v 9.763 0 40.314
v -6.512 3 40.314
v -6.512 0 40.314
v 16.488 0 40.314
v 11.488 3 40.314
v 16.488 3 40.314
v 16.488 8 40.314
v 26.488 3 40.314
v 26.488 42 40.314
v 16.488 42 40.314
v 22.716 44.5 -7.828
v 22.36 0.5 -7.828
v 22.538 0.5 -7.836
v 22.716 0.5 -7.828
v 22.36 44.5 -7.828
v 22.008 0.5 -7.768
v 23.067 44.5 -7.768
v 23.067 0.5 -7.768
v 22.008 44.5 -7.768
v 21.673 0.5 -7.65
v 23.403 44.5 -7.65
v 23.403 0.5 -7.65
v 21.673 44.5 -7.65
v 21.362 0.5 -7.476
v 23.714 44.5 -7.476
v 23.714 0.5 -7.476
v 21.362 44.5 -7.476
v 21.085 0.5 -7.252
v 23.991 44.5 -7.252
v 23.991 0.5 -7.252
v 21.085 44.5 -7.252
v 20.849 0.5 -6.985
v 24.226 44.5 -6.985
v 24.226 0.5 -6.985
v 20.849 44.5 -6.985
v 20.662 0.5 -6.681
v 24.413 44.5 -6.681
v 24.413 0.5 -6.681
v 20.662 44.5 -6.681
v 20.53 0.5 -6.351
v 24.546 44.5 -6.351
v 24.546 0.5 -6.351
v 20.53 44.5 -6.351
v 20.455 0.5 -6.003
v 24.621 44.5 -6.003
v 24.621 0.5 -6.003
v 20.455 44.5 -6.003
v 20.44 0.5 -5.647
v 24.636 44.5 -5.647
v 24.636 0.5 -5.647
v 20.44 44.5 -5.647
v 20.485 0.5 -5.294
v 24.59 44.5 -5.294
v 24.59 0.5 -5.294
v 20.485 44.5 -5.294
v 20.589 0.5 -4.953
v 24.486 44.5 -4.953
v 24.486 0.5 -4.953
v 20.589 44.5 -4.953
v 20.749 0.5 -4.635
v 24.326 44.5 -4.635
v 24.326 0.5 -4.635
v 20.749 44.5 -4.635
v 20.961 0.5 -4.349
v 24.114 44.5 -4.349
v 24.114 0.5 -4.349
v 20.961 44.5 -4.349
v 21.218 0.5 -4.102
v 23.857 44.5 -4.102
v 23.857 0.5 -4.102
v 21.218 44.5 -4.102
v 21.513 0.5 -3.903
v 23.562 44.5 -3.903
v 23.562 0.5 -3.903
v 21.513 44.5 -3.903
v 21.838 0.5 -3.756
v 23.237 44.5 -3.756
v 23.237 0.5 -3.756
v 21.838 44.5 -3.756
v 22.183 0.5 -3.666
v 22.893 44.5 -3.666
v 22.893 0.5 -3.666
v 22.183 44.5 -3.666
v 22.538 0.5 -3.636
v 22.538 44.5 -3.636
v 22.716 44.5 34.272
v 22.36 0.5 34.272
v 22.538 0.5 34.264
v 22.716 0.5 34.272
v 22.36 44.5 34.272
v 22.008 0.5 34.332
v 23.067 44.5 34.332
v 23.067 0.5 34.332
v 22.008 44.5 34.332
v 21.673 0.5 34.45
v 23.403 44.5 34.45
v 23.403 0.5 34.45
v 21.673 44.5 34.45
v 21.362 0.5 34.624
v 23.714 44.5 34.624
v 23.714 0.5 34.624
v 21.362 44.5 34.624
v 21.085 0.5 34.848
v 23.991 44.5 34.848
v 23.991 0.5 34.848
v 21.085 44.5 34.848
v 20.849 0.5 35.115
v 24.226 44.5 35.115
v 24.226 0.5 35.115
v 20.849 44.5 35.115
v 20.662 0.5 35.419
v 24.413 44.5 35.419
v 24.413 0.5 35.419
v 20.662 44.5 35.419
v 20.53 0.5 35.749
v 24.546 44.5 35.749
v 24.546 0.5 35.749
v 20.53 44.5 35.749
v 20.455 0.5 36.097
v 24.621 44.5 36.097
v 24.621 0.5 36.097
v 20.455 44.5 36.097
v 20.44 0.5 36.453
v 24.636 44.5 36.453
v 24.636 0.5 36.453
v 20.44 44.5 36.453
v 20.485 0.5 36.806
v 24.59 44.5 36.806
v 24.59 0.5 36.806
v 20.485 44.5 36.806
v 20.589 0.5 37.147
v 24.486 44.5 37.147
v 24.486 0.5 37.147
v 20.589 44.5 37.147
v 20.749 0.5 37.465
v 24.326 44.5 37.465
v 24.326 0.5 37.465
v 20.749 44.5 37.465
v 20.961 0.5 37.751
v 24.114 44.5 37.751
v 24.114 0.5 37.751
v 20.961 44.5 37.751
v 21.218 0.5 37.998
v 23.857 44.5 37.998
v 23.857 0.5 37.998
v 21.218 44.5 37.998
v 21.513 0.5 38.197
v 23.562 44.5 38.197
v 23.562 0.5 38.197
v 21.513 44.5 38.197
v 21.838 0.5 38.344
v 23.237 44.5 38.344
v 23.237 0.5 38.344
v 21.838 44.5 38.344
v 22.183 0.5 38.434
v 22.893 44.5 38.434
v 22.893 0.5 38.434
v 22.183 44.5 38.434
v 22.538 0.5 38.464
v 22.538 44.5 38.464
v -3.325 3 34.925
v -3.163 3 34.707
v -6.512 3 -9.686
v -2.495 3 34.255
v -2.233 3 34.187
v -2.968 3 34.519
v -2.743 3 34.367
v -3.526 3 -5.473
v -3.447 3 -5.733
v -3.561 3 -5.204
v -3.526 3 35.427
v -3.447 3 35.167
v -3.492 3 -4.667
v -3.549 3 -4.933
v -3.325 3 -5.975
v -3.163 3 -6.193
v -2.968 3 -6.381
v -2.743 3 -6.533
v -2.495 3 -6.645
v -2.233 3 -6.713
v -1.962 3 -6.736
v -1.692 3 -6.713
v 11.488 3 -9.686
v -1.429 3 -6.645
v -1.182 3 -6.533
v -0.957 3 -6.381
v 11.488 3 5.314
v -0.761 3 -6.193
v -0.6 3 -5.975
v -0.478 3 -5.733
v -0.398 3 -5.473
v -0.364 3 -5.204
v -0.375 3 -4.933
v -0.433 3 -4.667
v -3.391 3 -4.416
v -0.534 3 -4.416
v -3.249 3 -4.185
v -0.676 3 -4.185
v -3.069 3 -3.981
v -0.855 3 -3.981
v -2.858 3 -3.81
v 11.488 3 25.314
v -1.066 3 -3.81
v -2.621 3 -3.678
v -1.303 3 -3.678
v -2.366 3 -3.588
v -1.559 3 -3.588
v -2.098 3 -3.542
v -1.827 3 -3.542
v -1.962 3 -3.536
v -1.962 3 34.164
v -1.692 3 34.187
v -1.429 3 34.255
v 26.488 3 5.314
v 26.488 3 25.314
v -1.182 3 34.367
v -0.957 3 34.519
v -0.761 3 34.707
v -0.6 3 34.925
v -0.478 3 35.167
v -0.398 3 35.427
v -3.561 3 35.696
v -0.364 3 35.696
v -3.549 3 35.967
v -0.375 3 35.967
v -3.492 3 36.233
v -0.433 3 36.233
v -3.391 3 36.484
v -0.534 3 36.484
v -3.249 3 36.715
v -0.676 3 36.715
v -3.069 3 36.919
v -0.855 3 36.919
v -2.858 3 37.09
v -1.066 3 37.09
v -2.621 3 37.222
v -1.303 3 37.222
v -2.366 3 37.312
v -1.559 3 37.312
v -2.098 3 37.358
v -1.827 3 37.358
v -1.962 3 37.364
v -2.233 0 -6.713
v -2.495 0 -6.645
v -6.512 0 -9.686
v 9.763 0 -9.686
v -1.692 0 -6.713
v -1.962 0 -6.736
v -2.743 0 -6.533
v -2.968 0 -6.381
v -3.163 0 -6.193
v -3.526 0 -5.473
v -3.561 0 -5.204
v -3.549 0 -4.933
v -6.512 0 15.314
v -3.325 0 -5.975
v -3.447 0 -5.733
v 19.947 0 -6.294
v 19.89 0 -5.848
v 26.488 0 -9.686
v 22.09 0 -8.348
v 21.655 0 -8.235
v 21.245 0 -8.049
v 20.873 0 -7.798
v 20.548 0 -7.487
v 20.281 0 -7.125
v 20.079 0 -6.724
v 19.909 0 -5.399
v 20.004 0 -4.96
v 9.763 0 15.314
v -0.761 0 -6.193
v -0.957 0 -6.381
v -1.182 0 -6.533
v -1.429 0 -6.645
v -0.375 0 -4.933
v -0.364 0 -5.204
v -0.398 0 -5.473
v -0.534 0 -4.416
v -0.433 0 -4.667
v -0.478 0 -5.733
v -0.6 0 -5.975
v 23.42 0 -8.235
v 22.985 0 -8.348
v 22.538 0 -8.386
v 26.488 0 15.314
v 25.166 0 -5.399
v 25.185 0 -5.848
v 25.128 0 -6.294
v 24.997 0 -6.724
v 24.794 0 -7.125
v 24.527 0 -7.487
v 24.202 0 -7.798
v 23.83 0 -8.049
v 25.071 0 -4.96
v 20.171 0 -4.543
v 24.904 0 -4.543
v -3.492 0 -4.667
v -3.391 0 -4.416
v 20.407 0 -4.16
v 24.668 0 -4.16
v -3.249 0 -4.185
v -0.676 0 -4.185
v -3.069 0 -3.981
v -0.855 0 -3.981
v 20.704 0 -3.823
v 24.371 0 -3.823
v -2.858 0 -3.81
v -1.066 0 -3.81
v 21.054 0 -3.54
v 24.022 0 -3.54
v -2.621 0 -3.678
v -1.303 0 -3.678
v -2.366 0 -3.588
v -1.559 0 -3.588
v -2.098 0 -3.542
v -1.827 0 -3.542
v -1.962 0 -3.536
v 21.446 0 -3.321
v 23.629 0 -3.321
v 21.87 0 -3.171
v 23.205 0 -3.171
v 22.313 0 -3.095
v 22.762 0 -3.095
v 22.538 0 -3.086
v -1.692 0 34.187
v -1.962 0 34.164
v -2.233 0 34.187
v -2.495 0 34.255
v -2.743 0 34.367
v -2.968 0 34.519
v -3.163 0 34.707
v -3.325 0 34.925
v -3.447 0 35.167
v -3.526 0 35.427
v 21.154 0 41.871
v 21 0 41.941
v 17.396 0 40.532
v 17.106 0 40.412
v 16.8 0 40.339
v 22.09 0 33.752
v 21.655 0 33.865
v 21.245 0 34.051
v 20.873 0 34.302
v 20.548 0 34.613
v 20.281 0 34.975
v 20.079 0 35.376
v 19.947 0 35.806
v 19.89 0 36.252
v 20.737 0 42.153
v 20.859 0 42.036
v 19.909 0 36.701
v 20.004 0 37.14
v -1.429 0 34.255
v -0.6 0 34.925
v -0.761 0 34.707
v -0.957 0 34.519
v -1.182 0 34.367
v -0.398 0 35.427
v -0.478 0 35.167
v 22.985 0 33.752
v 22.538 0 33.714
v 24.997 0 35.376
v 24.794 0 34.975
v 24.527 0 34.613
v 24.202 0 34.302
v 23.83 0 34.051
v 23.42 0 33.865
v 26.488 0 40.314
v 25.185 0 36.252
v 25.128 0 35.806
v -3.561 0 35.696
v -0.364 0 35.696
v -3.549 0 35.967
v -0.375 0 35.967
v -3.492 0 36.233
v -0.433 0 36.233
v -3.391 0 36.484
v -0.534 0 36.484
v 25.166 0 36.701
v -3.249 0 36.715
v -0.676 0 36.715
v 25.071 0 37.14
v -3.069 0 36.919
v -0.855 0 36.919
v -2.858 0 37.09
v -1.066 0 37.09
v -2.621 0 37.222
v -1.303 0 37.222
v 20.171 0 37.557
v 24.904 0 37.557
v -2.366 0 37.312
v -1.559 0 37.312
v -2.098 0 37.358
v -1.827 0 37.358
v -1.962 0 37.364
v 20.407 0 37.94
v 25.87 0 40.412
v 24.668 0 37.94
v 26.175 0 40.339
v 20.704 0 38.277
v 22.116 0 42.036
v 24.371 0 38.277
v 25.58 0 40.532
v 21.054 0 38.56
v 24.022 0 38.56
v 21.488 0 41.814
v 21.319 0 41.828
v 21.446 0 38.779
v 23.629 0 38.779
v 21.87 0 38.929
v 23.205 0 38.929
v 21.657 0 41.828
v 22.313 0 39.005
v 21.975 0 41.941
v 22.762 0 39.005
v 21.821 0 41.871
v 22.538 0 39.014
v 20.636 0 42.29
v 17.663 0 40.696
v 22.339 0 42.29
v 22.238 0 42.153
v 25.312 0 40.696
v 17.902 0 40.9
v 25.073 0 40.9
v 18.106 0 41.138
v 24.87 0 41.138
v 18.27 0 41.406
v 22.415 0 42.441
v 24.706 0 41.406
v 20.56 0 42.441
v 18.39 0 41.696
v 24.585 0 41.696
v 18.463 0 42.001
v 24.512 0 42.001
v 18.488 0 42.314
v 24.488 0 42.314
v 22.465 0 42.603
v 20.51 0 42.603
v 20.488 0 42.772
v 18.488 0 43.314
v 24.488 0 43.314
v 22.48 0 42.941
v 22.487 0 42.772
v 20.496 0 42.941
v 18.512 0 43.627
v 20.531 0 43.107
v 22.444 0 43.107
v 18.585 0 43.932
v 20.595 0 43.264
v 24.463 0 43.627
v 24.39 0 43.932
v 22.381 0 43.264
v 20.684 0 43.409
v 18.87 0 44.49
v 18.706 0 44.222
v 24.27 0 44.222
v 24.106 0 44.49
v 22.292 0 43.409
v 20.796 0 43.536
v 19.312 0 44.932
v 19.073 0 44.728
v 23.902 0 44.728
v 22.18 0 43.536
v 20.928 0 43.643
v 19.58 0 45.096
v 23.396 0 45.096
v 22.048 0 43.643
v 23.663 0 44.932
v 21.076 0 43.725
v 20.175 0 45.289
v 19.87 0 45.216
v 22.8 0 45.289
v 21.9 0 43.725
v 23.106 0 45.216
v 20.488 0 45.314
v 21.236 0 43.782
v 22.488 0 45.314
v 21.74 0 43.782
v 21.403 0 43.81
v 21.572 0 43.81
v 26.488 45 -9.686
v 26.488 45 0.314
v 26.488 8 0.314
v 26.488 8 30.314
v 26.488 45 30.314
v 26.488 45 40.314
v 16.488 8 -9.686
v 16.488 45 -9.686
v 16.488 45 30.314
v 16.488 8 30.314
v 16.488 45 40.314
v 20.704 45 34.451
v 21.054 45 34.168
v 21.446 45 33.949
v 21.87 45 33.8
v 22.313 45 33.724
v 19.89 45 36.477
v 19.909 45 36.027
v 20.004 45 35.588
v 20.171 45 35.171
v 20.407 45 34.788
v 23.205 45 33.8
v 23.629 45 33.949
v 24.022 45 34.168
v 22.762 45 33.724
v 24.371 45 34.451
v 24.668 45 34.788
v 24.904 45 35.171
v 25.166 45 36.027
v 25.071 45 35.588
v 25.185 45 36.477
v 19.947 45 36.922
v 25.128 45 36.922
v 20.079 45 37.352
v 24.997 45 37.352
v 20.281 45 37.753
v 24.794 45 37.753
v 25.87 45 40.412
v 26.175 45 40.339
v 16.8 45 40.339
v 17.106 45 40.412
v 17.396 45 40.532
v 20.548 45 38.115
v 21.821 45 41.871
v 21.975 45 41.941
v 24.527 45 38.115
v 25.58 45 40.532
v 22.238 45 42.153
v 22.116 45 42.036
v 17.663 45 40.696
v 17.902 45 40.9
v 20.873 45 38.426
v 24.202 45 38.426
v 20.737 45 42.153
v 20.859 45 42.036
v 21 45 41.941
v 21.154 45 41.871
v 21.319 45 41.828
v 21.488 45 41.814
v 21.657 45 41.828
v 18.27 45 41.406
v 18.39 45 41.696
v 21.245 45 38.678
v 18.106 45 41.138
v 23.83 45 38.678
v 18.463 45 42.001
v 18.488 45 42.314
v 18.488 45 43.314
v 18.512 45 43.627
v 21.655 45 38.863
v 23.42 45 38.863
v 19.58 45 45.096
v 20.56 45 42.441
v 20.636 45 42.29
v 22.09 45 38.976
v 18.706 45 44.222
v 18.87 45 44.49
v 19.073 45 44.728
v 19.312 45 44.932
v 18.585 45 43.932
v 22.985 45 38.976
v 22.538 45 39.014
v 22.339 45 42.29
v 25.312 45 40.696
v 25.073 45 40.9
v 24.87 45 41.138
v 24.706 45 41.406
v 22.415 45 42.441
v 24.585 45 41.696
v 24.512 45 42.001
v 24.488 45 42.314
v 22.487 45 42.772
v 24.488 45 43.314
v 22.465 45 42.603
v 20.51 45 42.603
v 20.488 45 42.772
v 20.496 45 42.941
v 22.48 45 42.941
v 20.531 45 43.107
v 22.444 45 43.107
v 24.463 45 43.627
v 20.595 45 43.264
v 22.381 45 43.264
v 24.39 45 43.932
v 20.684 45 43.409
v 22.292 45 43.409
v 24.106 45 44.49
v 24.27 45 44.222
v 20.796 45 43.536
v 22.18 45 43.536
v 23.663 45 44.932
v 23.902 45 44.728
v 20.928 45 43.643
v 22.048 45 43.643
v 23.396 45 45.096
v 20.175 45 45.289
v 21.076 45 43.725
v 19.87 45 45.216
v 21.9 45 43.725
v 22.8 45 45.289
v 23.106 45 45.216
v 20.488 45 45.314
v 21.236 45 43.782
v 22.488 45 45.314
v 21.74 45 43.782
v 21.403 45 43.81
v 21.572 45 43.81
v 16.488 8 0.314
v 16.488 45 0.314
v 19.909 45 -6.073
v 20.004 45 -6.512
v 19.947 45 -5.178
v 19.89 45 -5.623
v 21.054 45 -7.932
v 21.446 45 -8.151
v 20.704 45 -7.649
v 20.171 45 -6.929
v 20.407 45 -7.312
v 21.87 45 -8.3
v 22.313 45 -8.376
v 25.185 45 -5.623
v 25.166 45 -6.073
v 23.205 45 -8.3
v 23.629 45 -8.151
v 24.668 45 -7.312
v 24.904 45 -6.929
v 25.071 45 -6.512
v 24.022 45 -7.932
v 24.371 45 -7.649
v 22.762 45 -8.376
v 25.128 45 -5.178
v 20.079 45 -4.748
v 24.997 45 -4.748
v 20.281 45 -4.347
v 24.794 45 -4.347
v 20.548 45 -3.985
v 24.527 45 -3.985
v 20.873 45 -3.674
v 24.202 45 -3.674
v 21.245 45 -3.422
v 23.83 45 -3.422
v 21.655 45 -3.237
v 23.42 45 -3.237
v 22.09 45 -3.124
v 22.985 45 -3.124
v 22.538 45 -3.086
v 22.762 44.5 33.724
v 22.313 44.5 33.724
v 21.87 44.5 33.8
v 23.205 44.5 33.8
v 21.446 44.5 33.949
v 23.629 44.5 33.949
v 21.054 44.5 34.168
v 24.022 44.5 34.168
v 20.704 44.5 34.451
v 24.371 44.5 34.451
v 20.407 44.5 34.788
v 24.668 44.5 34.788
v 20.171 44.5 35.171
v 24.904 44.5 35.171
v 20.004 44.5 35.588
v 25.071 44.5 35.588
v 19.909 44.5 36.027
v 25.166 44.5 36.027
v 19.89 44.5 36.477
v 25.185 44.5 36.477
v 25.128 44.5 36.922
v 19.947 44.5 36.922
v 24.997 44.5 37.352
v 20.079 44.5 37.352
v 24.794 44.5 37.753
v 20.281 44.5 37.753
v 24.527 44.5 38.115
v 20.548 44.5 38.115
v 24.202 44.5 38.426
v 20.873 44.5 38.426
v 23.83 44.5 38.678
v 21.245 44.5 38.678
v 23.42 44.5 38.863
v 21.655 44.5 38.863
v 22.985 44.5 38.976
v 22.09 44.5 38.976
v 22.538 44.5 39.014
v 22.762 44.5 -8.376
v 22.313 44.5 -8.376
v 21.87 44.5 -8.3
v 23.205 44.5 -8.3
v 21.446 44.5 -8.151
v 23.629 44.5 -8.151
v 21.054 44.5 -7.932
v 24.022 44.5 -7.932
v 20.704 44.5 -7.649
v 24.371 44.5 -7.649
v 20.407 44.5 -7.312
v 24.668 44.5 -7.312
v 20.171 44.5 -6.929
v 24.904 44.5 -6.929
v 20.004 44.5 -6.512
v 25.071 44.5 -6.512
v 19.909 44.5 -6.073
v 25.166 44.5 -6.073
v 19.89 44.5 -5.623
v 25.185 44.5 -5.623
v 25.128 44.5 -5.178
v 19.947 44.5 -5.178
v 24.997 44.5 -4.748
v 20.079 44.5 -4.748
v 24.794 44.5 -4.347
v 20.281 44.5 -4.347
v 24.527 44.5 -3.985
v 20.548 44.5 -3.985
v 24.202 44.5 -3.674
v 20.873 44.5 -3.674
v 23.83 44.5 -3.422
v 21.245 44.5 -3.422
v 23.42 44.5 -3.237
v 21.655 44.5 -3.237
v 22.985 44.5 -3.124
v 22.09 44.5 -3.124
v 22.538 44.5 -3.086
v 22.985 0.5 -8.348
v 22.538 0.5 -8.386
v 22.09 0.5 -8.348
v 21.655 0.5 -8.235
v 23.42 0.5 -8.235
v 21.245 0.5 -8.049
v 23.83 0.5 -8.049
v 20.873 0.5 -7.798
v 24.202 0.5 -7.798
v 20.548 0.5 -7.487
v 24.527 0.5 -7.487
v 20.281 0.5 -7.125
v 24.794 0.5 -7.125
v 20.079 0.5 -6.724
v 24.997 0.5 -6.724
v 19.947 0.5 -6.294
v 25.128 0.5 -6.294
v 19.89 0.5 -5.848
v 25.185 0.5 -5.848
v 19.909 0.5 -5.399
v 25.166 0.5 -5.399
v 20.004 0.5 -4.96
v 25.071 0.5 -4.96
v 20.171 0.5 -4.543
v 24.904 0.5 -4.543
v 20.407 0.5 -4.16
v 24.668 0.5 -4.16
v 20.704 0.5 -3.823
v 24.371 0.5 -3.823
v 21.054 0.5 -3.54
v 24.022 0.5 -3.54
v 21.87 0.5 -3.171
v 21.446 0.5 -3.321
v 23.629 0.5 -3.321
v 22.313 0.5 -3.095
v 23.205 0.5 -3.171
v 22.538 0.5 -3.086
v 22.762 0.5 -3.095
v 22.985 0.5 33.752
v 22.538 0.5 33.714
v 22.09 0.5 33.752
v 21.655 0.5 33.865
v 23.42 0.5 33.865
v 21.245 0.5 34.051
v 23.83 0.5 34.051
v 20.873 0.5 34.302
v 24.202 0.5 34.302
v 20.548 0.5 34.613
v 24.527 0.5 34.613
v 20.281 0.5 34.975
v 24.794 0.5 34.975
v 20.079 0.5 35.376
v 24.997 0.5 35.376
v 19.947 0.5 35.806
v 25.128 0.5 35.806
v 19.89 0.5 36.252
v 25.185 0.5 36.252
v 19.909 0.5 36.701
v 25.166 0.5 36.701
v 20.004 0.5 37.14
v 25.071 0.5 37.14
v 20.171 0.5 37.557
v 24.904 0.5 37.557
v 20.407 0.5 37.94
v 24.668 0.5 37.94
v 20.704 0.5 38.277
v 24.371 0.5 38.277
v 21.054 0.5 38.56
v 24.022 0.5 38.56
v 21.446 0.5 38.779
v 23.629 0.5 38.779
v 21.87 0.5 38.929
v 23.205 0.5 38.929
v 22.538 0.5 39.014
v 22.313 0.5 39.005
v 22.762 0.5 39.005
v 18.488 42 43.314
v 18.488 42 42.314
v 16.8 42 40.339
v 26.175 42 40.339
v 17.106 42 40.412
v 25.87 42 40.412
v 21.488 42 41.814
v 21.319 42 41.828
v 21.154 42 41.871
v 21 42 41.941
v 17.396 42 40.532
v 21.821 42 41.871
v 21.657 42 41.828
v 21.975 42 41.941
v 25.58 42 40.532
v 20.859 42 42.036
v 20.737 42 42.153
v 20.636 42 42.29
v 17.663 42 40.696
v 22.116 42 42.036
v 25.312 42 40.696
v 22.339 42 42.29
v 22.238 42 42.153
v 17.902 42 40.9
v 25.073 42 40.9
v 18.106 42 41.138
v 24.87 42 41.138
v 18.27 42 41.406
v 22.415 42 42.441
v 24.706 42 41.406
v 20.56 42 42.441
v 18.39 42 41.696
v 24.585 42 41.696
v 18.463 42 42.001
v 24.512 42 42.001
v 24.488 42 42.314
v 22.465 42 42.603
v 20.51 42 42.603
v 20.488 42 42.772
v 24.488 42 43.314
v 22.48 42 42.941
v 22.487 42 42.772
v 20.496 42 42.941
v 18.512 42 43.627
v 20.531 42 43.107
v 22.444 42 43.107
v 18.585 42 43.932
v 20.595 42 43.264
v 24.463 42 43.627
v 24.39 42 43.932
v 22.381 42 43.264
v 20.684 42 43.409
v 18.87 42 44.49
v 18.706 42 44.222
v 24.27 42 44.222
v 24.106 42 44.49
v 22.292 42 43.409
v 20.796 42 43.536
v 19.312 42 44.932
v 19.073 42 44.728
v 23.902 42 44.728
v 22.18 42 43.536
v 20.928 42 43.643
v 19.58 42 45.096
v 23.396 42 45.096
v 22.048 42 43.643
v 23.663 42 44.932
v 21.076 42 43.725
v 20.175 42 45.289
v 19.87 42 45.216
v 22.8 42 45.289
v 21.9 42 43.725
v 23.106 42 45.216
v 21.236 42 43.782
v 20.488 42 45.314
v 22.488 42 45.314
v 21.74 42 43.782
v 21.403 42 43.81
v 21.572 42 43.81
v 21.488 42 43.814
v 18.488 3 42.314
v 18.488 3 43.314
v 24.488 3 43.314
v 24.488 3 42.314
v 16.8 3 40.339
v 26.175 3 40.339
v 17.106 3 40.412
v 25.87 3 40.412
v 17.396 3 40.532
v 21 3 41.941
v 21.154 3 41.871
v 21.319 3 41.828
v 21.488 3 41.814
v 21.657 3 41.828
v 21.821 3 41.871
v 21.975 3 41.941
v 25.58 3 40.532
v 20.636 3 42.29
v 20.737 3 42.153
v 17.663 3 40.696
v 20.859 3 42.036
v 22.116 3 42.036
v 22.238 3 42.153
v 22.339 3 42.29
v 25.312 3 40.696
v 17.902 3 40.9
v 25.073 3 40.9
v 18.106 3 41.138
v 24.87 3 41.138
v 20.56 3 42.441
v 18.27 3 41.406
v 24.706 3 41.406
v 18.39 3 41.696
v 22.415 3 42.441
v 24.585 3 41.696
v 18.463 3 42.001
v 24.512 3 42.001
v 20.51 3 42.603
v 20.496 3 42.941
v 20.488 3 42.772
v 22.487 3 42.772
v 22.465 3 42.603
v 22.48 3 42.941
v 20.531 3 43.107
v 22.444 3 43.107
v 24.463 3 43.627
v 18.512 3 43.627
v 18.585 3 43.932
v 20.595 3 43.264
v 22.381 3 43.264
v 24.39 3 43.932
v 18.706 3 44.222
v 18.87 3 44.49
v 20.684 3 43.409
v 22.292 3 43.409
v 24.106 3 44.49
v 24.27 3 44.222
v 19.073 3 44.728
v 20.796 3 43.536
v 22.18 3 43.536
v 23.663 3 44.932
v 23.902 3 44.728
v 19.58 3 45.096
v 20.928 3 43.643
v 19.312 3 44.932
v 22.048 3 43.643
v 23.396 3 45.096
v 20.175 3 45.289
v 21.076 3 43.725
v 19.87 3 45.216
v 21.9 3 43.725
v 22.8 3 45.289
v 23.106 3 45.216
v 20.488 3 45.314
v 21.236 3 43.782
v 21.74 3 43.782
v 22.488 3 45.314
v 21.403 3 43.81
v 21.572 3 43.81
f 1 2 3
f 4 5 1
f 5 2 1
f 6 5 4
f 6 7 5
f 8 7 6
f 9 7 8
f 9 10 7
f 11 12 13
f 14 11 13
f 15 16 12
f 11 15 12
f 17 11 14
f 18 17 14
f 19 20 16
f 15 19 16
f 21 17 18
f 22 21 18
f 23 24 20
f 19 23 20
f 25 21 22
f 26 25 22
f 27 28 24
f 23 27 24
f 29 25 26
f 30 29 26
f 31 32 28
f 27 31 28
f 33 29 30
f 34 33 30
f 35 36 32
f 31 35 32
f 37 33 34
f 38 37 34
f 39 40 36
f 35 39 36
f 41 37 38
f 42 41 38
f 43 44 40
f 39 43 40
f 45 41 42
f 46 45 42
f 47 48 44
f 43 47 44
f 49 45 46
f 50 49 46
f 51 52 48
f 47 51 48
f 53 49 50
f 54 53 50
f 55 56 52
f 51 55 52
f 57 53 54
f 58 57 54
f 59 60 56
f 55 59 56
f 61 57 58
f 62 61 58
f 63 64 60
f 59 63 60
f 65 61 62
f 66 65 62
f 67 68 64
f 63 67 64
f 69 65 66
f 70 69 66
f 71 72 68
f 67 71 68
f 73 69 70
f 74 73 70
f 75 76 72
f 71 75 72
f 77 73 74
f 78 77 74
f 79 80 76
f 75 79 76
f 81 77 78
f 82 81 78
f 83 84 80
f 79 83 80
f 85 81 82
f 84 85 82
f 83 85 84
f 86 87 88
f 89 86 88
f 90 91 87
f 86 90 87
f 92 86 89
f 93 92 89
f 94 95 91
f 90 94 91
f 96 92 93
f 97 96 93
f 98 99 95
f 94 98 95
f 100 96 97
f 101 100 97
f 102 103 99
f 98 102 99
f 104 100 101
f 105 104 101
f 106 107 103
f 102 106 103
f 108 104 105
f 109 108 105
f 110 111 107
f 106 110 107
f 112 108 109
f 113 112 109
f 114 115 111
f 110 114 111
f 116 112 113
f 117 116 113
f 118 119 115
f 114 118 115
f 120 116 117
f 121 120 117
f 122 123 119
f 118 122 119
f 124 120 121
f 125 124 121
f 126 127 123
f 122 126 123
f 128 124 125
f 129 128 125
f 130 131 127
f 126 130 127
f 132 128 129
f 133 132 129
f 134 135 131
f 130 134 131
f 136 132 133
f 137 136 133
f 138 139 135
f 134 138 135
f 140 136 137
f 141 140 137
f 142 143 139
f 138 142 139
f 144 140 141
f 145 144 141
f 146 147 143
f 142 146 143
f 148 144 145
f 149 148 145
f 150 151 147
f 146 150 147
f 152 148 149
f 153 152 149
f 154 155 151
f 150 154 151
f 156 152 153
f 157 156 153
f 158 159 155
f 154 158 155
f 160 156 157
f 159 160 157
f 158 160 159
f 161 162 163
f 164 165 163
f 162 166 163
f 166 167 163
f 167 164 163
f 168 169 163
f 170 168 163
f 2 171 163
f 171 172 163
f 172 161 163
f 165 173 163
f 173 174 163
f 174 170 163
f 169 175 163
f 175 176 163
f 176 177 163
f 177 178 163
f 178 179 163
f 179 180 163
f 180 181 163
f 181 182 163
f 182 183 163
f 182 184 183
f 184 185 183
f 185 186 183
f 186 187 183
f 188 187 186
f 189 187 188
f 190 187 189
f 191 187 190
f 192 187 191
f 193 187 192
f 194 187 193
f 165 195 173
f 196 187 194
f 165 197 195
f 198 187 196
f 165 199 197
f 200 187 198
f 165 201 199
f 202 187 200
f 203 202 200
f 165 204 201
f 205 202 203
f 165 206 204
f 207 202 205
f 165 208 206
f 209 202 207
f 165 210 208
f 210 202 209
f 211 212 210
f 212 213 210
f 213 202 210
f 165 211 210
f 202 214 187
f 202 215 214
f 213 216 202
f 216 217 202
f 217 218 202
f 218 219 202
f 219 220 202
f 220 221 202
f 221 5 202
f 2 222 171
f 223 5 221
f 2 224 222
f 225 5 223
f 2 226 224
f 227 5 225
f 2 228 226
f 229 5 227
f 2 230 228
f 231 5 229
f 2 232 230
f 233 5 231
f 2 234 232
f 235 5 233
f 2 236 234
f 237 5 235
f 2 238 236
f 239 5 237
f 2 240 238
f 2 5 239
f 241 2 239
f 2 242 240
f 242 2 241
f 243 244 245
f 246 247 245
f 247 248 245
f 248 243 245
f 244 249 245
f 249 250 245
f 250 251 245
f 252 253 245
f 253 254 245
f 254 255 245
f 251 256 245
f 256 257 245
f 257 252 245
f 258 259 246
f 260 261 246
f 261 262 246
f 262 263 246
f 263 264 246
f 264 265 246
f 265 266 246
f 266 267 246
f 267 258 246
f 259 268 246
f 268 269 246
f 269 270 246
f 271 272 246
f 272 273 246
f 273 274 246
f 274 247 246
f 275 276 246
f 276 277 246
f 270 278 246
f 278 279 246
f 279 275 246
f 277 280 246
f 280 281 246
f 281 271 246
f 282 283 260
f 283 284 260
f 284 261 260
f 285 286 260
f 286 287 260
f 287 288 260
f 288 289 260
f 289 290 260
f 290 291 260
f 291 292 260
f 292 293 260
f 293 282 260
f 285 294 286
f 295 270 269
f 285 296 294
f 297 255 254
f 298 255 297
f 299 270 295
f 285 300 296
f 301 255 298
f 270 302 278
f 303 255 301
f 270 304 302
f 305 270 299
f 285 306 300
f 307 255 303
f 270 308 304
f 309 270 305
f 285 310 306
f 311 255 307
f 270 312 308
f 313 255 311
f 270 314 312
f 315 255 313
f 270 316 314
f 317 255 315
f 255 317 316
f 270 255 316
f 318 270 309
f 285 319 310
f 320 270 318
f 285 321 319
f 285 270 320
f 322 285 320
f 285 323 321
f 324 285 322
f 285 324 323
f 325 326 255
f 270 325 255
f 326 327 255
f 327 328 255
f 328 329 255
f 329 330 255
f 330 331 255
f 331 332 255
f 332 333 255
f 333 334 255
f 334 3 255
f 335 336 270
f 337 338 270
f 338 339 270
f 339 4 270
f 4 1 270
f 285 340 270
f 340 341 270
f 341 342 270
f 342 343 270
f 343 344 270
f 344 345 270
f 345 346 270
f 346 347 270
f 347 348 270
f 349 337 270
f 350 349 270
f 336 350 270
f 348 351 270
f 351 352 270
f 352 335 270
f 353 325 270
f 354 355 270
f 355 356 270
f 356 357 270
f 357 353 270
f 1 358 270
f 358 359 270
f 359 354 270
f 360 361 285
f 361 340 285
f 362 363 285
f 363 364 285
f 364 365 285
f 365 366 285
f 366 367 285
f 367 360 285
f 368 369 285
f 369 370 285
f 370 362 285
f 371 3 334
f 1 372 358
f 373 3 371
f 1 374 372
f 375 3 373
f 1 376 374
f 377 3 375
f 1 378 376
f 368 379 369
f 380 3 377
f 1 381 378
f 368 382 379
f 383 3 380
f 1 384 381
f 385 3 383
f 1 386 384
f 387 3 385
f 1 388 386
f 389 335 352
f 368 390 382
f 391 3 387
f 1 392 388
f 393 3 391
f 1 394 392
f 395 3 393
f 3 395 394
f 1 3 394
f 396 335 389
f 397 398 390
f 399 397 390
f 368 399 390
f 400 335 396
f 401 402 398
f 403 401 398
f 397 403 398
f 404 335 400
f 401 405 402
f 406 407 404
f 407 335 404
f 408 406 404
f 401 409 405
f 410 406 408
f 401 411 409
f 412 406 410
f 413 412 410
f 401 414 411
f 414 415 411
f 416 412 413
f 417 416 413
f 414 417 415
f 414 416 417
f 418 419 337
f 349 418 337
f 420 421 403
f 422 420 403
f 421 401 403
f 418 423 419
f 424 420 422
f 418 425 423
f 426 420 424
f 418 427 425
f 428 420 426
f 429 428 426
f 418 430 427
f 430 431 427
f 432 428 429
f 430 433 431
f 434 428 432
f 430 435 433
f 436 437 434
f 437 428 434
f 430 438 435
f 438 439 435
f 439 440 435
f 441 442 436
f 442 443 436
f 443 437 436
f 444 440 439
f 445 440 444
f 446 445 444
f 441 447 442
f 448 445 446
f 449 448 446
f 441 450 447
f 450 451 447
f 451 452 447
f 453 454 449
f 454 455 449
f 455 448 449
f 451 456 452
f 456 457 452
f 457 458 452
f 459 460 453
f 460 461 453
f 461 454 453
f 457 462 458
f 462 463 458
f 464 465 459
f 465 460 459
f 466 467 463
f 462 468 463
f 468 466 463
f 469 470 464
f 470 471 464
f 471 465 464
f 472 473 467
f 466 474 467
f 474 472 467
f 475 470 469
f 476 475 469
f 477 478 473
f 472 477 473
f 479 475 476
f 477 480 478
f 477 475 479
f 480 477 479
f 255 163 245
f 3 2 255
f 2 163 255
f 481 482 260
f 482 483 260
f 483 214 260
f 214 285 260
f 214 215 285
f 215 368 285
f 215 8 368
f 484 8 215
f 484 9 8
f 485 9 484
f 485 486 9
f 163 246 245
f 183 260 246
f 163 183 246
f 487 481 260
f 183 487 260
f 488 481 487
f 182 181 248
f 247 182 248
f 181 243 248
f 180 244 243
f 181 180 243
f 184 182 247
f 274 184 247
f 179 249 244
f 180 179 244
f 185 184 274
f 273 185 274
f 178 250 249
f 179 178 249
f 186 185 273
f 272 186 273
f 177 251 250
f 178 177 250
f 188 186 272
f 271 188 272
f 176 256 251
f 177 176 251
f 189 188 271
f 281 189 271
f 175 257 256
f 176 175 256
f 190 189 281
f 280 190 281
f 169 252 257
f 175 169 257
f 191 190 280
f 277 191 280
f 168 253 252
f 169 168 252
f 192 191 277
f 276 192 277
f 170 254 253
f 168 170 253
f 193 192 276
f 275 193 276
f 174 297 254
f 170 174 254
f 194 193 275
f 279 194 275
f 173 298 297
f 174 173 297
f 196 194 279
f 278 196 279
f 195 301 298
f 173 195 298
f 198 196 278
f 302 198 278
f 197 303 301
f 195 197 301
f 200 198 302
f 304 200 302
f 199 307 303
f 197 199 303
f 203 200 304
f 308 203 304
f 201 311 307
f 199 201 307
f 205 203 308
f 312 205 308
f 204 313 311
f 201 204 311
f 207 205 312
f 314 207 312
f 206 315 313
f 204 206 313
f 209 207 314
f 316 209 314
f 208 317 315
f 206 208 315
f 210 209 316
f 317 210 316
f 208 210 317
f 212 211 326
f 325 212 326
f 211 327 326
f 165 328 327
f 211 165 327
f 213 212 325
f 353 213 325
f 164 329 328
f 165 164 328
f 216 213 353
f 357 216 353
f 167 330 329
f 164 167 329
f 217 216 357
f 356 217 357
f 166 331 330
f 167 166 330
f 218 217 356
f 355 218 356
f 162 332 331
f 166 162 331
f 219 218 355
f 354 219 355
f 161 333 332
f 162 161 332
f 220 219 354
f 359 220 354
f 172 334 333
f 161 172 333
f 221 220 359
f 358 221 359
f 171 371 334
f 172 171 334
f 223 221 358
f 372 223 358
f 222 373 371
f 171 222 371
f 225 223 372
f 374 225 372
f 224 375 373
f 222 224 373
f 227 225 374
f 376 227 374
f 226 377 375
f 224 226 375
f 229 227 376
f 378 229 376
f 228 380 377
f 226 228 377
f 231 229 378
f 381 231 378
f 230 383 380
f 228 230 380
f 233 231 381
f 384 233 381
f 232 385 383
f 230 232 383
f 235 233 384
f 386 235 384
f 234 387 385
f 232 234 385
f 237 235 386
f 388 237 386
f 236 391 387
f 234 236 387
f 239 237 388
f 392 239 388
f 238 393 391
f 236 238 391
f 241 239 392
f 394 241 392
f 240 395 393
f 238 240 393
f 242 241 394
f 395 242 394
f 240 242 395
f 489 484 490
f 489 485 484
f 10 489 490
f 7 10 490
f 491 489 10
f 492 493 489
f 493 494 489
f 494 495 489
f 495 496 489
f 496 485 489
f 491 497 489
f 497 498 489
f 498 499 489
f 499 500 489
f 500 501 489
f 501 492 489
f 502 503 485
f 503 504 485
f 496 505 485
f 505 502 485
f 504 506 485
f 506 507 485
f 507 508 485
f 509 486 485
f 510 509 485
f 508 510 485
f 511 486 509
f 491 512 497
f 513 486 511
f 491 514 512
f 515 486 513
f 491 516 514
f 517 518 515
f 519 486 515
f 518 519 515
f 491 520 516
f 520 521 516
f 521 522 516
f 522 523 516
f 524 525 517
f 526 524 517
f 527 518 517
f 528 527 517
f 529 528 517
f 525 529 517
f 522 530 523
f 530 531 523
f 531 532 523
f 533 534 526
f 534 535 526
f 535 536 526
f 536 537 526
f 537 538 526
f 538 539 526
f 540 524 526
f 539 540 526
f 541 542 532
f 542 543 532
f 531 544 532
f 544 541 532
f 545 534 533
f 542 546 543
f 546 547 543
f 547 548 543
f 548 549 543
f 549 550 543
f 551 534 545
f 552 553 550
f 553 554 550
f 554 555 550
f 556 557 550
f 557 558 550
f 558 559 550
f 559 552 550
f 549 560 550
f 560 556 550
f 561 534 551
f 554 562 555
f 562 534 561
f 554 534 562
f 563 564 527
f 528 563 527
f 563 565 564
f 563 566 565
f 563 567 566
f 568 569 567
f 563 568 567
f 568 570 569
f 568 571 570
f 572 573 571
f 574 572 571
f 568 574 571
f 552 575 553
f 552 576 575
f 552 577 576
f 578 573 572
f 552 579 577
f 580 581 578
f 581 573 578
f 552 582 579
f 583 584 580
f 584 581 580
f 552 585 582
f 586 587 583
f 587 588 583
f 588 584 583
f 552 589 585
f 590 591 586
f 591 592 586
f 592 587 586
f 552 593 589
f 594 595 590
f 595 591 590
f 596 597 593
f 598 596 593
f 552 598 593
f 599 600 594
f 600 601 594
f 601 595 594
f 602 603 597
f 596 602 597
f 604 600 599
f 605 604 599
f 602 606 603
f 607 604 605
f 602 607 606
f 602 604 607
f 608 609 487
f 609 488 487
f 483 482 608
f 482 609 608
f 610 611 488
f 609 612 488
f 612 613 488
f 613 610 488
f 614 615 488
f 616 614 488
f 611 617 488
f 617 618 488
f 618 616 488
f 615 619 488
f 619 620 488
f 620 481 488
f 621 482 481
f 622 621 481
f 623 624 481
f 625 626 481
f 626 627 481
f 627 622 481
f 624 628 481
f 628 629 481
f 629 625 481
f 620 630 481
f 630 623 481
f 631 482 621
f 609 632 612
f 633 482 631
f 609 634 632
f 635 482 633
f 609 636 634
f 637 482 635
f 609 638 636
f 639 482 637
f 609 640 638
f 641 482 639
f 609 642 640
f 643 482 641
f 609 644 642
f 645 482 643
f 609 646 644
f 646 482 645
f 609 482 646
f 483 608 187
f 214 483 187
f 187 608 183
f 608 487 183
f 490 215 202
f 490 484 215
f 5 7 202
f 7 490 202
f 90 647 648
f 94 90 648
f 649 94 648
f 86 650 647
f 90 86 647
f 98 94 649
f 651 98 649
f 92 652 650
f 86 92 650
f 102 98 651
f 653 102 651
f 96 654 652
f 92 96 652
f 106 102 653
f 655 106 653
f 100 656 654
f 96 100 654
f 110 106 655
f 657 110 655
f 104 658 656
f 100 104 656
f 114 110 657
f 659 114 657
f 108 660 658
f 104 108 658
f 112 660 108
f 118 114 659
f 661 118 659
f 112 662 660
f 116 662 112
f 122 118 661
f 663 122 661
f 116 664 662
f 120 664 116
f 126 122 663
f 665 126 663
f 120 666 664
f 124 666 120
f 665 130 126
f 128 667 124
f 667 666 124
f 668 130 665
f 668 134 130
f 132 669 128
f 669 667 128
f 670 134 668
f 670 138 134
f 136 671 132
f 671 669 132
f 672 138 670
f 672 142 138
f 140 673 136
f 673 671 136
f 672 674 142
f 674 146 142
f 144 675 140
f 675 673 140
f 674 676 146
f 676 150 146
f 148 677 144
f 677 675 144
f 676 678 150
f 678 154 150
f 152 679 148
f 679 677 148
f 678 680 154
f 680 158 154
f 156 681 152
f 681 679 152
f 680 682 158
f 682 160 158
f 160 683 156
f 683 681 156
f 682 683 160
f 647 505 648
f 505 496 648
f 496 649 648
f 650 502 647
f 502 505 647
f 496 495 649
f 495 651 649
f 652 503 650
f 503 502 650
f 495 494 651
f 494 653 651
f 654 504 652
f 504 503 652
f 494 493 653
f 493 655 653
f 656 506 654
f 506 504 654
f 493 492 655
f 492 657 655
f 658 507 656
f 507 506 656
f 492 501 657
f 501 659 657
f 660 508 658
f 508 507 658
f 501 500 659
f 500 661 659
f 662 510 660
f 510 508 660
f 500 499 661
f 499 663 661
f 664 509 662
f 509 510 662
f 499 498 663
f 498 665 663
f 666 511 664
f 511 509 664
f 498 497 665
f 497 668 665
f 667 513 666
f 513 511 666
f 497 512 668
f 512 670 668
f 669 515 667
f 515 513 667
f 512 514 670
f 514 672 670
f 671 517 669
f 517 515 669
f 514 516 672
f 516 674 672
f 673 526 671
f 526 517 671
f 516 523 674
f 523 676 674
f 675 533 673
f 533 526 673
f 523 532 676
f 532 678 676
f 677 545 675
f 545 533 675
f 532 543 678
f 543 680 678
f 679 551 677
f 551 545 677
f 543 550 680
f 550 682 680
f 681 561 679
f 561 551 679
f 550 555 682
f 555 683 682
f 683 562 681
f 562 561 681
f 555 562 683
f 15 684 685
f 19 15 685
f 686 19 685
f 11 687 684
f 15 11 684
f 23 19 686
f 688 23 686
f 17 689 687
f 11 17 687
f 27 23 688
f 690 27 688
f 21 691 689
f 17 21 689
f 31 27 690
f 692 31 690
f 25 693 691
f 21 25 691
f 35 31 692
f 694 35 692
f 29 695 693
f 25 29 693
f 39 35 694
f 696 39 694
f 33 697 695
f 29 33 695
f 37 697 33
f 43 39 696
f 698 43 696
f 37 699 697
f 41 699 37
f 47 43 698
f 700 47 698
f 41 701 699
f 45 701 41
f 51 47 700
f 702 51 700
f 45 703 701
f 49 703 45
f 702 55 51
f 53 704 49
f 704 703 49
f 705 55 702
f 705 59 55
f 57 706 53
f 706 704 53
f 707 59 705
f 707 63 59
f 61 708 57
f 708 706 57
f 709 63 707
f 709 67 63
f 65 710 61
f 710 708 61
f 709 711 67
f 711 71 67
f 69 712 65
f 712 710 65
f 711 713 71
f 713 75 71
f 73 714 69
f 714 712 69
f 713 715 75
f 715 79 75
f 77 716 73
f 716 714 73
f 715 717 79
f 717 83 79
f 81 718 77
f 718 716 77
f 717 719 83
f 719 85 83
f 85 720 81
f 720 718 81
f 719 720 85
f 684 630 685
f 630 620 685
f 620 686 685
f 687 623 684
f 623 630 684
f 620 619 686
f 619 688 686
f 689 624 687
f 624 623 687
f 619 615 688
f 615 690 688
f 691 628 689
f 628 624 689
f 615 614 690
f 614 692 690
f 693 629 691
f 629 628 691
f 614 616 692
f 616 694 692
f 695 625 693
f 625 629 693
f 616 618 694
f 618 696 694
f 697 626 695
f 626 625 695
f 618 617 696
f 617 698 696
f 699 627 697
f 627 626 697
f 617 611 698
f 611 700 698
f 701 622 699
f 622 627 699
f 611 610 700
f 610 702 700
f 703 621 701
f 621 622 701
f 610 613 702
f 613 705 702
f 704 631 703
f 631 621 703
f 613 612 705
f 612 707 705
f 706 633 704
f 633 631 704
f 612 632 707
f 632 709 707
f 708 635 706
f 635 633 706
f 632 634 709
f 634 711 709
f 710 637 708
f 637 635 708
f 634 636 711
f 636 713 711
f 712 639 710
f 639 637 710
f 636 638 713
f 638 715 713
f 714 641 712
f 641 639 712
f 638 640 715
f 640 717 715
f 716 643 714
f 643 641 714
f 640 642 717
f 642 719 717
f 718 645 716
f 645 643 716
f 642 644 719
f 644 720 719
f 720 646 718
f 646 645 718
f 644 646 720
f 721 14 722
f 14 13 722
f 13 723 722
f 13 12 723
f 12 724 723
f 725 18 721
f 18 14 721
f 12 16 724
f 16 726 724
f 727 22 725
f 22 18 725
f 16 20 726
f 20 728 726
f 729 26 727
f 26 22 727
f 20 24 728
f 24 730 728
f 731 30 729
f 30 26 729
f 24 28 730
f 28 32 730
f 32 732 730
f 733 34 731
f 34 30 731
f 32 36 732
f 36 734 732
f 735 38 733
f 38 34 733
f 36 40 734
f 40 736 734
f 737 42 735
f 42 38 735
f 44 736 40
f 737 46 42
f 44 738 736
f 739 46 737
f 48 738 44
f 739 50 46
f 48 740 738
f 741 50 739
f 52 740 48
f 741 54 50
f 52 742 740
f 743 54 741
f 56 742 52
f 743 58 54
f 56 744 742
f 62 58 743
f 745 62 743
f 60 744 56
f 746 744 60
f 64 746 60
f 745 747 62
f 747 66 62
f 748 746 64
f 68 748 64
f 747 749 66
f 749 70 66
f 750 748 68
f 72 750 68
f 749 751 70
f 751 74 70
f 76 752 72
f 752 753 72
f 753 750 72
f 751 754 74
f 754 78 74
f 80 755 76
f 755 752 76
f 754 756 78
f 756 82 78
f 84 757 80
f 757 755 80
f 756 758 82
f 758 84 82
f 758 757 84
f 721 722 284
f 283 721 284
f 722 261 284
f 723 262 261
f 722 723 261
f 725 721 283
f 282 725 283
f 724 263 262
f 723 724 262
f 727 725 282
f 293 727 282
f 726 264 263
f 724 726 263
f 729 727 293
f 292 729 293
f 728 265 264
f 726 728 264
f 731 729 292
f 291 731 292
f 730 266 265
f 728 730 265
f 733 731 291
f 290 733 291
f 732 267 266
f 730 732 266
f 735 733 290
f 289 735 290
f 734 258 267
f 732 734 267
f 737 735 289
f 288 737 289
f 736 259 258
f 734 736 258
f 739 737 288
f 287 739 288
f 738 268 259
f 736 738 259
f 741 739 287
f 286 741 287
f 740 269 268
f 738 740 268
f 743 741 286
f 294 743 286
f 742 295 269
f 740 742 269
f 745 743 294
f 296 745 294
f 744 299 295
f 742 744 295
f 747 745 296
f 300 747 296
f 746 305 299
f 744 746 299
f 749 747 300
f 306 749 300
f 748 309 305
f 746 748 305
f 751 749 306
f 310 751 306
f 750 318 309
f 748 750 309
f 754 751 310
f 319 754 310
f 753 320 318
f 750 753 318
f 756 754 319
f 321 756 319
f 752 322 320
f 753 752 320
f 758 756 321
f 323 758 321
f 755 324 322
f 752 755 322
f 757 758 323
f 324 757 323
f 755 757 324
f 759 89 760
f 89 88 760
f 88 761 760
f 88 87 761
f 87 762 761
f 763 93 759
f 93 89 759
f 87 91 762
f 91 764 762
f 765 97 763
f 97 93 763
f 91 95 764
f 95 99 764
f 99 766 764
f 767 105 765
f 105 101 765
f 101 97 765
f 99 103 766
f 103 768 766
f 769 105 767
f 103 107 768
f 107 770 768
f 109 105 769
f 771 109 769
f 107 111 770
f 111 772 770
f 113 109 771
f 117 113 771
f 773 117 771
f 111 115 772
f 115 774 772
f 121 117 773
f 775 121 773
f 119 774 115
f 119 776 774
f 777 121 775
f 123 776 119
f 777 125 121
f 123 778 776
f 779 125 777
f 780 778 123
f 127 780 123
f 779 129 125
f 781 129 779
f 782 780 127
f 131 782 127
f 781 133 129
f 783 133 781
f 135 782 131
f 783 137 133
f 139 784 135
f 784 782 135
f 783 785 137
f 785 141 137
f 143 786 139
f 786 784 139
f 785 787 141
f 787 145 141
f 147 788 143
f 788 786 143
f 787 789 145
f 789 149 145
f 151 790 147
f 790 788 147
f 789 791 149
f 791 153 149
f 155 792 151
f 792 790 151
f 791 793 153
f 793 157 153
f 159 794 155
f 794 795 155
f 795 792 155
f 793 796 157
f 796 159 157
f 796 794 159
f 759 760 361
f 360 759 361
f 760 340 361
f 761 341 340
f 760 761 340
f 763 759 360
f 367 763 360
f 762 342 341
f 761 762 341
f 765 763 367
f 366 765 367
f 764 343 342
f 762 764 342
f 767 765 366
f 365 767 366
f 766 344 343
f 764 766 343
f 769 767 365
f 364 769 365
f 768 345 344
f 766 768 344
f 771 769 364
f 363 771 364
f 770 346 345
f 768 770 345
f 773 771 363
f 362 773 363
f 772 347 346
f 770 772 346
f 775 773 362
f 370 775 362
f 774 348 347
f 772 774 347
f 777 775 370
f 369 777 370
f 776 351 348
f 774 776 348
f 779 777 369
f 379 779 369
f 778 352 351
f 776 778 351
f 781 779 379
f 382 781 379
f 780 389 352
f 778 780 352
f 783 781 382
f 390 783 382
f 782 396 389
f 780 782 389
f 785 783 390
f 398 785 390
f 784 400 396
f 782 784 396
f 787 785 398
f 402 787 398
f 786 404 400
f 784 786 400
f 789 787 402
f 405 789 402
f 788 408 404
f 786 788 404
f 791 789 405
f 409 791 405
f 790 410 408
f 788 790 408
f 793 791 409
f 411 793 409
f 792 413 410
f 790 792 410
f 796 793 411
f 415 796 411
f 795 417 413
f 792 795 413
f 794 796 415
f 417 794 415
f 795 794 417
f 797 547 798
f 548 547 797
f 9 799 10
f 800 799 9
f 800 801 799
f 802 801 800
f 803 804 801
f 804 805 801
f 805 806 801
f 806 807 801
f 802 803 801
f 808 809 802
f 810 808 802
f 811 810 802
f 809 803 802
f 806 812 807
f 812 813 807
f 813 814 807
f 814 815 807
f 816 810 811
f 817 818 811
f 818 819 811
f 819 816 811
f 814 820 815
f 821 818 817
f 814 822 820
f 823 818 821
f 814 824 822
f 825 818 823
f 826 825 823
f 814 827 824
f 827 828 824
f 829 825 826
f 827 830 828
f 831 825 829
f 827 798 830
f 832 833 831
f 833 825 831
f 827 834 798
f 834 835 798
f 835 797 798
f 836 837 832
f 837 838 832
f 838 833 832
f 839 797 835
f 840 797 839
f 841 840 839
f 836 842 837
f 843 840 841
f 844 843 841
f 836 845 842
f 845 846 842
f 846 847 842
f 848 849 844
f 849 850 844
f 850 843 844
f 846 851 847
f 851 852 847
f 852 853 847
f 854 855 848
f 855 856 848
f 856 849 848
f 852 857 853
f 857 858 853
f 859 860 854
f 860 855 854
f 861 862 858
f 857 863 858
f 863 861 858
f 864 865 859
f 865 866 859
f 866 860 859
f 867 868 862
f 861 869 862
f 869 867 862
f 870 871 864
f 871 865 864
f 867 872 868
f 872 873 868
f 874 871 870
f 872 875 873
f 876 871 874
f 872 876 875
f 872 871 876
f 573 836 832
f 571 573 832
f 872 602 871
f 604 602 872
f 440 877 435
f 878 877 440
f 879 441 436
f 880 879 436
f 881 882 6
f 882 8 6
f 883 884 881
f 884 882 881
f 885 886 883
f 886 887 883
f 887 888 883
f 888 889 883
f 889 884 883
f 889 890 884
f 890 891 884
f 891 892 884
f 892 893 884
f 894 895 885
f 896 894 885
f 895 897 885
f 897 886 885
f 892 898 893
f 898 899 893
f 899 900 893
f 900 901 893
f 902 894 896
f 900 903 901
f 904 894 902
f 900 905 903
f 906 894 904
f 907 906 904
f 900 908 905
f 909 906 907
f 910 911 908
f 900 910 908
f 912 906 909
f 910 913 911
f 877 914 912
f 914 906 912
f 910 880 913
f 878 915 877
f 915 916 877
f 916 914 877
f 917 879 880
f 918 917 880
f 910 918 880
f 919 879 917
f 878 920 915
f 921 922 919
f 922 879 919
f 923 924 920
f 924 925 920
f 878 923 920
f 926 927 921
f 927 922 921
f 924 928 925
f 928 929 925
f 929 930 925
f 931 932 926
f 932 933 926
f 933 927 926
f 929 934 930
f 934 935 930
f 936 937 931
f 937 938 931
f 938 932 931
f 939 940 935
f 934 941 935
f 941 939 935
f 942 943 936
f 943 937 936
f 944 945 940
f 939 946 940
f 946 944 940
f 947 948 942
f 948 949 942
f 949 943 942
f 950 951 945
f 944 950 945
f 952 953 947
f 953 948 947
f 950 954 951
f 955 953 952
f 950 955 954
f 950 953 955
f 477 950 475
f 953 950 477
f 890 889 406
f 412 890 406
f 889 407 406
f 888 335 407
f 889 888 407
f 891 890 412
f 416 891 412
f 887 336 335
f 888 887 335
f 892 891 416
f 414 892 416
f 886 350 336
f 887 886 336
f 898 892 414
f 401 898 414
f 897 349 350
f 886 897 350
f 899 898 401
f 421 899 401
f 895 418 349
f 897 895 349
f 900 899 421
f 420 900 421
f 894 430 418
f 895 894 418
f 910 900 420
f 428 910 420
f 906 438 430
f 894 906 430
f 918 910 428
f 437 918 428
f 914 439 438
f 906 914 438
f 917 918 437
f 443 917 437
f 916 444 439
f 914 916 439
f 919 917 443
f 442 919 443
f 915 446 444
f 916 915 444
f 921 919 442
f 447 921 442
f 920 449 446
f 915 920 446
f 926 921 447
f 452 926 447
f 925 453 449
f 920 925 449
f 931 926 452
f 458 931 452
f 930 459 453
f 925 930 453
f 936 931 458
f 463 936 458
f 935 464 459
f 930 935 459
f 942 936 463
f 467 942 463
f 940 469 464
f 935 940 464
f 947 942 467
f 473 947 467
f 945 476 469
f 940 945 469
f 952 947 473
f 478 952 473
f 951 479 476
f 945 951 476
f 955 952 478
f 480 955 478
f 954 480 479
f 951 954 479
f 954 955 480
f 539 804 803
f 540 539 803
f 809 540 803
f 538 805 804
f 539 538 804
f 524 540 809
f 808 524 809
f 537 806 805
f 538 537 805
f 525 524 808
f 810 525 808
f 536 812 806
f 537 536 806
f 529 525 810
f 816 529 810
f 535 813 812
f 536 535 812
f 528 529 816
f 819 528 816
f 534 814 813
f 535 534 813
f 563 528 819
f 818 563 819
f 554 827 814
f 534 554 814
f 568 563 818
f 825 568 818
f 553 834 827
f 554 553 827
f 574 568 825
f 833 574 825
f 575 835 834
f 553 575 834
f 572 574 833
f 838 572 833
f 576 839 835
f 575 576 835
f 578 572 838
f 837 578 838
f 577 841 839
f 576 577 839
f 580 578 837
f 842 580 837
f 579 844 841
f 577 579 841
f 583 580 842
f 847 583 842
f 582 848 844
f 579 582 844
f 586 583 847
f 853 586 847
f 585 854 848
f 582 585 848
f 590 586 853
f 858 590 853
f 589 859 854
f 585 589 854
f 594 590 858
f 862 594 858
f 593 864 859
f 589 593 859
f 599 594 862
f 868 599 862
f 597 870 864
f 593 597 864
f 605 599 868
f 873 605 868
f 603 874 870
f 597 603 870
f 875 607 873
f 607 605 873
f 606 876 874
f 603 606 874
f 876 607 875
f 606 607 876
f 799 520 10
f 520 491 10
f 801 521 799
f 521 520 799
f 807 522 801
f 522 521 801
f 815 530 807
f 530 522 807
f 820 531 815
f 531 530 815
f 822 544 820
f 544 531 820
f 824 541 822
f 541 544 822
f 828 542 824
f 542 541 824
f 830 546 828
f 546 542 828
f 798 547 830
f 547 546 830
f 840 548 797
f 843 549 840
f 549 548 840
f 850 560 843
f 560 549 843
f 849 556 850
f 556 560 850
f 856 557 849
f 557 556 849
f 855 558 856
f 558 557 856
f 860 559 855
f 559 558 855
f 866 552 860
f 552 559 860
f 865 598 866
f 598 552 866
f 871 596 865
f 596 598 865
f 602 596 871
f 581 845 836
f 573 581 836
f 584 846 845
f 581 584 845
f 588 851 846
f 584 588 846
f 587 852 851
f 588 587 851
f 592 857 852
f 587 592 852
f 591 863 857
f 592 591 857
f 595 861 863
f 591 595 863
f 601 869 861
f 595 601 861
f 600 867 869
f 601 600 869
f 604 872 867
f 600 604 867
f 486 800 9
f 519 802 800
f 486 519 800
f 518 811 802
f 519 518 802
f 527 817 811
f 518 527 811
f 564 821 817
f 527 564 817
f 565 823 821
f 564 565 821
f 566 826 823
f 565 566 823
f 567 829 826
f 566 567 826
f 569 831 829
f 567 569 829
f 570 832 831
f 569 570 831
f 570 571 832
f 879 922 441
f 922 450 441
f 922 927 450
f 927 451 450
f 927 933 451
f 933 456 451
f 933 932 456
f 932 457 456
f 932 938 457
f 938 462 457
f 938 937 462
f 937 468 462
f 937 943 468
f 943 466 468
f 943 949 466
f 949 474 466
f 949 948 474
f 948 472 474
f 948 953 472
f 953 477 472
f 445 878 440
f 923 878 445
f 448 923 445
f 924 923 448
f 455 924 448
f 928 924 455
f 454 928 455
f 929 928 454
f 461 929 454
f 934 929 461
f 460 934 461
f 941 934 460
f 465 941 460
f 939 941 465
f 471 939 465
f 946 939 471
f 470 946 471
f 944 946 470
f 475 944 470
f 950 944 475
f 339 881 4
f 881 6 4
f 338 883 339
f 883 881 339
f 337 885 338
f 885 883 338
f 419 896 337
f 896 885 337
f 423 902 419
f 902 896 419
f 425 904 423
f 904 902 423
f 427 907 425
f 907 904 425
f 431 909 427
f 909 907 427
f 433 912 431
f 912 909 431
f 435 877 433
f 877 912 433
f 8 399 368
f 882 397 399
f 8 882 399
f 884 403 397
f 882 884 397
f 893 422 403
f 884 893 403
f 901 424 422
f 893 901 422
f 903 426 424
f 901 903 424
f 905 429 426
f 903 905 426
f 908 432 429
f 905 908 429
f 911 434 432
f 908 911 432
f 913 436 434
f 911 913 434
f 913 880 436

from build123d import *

# Parameters (mm, degrees)
SKETCH1_R           = 1.6
BOSS_EXTRUDE1_DEPTH = 3
SKETCH2_W           = 10
SKETCH2_H           = 10
BOSS_EXTRUDE2_DEPTH = 42
CHAMFER1_SIZE       = 5
SKETCH3_R           = 2.1
CUT_EXTRUDE1_DEPTH  = 52
SKETCH4_R           = 2.65
CUT_EXTRUDE2_DEPTH  = 0.5
SKETCH11_W          = 6
SKETCH11_H          = 3
BOSS_EXTRUDE7_DEPTH = 5
SKETCH12_R          = 1
CUT_EXTRUDE5_DEPTH  = 70.137227445
FILLET1_R           = 2


with BuildPart() as part:
    # Sketch1 → Boss-Extrude1 (new body)
    with BuildSketch(Plane(origin=(0, 0, 0), x_dir=(1, 0, 0), z_dir=(0, 1, 0))):
        Polygon((-6.512396694, 9.685950413), (1.487603306, 9.685950413), (26.487603306, 9.685950413), (26.487603306, -40.314049587), (1.487603306, -40.314049587), (-6.512396694, -40.314049587), align=None)
        with Locations(Location((-1.962396694, -35.764049587, 0), (0, 0, 270))):
            Circle(SKETCH1_R, mode=Mode.SUBTRACT)
        with Locations(Location((-1.962396694, 5.135950413, 0), (0, 0, 270))):
            Circle(SKETCH1_R, mode=Mode.SUBTRACT)
    extrude(amount=BOSS_EXTRUDE1_DEPTH)

    # Sketch2 → Boss-Extrude2 (add)
    with BuildSketch(Plane(origin=(0, 3, 0), x_dir=(1, 0, 0), z_dir=(0, 1, 0))):
        with Locations((21.487603306, -35.314049587)):
            Rectangle(SKETCH2_W, SKETCH2_H)
        with Locations((21.487603306, 4.685950413)):
            Rectangle(SKETCH2_W, SKETCH2_H)
    extrude(amount=BOSS_EXTRUDE2_DEPTH)

    # Chamfer1
    chamfer1_edges = [part.edges().sort_by_distance(p)[0] for p in [
        (21.487603306, 3, 30.314049587),
        (16.487603306, 3, 35.314049587),
        (16.487603306, 3, -4.685950413),
        (21.487603306, 3, 0.314049587),
    ]]
    chamfer(chamfer1_edges, length=CHAMFER1_SIZE)

    # Sketch3 → Cut-Extrude1 (cut)
    with BuildSketch(Plane(origin=(0, 45, 0), x_dir=(1, 0, 0), z_dir=(0, 1, 0))):
        with Locations(Location((22.537603306, -36.364049587, 0), (0, 0, 270))):
            Circle(SKETCH3_R)
        with Locations(Location((22.537603306, 5.735950413, 0), (0, 0, 270))):
            Circle(SKETCH3_R)
    extrude(amount=-CUT_EXTRUDE1_DEPTH, mode=Mode.SUBTRACT)

    # Sketch4 → Cut-Extrude2 (cut)
    with BuildSketch(Plane(origin=(0, 45, 0), x_dir=(1, 0, 0), z_dir=(0, 1, 0))):
        with Locations(Location((22.537603306, -36.364049587, 0), (0, 0, 270))):
            Circle(SKETCH4_R)
        with Locations(Location((22.537603306, 5.735950413, 0), (0, 0, 270))):
            Circle(SKETCH4_R)
    cut_extrude2 = extrude(amount=-CUT_EXTRUDE2_DEPTH, mode=Mode.SUBTRACT)

    # Mirror1: Cut-Extrude2 across plane
    add(cut_extrude2.mirror(Plane(origin=(0, 22.5, 0), x_dir=(0, 0, 1), z_dir=(0, -1, 0))), mode=Mode.SUBTRACT)

    # Sketch11 → Boss-Extrude7 (add)
    with BuildSketch(Plane.XY.offset(40.314049587)):
        with Locations((21.487603306, 43.5)):
            Rectangle(SKETCH11_W, SKETCH11_H)
        with Locations((21.487603306, 1.5)):
            Rectangle(SKETCH11_W, SKETCH11_H)
    extrude(amount=BOSS_EXTRUDE7_DEPTH)

    # Sketch12 → Cut-Extrude5 (cut, through all)
    with BuildSketch(Plane.XZ):
        with Locations(Location((21.487603306, 42.814049587, 0), (0, 0, 270))):
            Circle(SKETCH12_R)
    extrude(amount=-CUT_EXTRUDE5_DEPTH, mode=Mode.SUBTRACT)

    # Fillet1
    fillet1_edges = [part.edges().sort_by_distance(p)[0] for p in [
        (18.487603306, 43.5, 40.314049587),
        (24.487603306, 43.5, 40.314049587),
        (18.487603306, 1.5, 40.314049587),
        (24.487603306, 1.5, 40.314049587),
    ]]
    fillet(fillet1_edges, radius=FILLET1_R - 0.0001)  # a hair under: the kernel refuses the full size
    fillet1_2_edges = [part.edges().sort_by_distance(p)[0] for p in [
        (18.487603306, 43.5, 45.314049587),
        (24.487603306, 43.5, 45.314049587),
        (24.487603306, 1.5, 45.314049587),
        (18.487603306, 1.5, 45.314049587),
    ]]
    fillet(fillet1_2_edges, radius=FILLET1_R)


solid = part.part
